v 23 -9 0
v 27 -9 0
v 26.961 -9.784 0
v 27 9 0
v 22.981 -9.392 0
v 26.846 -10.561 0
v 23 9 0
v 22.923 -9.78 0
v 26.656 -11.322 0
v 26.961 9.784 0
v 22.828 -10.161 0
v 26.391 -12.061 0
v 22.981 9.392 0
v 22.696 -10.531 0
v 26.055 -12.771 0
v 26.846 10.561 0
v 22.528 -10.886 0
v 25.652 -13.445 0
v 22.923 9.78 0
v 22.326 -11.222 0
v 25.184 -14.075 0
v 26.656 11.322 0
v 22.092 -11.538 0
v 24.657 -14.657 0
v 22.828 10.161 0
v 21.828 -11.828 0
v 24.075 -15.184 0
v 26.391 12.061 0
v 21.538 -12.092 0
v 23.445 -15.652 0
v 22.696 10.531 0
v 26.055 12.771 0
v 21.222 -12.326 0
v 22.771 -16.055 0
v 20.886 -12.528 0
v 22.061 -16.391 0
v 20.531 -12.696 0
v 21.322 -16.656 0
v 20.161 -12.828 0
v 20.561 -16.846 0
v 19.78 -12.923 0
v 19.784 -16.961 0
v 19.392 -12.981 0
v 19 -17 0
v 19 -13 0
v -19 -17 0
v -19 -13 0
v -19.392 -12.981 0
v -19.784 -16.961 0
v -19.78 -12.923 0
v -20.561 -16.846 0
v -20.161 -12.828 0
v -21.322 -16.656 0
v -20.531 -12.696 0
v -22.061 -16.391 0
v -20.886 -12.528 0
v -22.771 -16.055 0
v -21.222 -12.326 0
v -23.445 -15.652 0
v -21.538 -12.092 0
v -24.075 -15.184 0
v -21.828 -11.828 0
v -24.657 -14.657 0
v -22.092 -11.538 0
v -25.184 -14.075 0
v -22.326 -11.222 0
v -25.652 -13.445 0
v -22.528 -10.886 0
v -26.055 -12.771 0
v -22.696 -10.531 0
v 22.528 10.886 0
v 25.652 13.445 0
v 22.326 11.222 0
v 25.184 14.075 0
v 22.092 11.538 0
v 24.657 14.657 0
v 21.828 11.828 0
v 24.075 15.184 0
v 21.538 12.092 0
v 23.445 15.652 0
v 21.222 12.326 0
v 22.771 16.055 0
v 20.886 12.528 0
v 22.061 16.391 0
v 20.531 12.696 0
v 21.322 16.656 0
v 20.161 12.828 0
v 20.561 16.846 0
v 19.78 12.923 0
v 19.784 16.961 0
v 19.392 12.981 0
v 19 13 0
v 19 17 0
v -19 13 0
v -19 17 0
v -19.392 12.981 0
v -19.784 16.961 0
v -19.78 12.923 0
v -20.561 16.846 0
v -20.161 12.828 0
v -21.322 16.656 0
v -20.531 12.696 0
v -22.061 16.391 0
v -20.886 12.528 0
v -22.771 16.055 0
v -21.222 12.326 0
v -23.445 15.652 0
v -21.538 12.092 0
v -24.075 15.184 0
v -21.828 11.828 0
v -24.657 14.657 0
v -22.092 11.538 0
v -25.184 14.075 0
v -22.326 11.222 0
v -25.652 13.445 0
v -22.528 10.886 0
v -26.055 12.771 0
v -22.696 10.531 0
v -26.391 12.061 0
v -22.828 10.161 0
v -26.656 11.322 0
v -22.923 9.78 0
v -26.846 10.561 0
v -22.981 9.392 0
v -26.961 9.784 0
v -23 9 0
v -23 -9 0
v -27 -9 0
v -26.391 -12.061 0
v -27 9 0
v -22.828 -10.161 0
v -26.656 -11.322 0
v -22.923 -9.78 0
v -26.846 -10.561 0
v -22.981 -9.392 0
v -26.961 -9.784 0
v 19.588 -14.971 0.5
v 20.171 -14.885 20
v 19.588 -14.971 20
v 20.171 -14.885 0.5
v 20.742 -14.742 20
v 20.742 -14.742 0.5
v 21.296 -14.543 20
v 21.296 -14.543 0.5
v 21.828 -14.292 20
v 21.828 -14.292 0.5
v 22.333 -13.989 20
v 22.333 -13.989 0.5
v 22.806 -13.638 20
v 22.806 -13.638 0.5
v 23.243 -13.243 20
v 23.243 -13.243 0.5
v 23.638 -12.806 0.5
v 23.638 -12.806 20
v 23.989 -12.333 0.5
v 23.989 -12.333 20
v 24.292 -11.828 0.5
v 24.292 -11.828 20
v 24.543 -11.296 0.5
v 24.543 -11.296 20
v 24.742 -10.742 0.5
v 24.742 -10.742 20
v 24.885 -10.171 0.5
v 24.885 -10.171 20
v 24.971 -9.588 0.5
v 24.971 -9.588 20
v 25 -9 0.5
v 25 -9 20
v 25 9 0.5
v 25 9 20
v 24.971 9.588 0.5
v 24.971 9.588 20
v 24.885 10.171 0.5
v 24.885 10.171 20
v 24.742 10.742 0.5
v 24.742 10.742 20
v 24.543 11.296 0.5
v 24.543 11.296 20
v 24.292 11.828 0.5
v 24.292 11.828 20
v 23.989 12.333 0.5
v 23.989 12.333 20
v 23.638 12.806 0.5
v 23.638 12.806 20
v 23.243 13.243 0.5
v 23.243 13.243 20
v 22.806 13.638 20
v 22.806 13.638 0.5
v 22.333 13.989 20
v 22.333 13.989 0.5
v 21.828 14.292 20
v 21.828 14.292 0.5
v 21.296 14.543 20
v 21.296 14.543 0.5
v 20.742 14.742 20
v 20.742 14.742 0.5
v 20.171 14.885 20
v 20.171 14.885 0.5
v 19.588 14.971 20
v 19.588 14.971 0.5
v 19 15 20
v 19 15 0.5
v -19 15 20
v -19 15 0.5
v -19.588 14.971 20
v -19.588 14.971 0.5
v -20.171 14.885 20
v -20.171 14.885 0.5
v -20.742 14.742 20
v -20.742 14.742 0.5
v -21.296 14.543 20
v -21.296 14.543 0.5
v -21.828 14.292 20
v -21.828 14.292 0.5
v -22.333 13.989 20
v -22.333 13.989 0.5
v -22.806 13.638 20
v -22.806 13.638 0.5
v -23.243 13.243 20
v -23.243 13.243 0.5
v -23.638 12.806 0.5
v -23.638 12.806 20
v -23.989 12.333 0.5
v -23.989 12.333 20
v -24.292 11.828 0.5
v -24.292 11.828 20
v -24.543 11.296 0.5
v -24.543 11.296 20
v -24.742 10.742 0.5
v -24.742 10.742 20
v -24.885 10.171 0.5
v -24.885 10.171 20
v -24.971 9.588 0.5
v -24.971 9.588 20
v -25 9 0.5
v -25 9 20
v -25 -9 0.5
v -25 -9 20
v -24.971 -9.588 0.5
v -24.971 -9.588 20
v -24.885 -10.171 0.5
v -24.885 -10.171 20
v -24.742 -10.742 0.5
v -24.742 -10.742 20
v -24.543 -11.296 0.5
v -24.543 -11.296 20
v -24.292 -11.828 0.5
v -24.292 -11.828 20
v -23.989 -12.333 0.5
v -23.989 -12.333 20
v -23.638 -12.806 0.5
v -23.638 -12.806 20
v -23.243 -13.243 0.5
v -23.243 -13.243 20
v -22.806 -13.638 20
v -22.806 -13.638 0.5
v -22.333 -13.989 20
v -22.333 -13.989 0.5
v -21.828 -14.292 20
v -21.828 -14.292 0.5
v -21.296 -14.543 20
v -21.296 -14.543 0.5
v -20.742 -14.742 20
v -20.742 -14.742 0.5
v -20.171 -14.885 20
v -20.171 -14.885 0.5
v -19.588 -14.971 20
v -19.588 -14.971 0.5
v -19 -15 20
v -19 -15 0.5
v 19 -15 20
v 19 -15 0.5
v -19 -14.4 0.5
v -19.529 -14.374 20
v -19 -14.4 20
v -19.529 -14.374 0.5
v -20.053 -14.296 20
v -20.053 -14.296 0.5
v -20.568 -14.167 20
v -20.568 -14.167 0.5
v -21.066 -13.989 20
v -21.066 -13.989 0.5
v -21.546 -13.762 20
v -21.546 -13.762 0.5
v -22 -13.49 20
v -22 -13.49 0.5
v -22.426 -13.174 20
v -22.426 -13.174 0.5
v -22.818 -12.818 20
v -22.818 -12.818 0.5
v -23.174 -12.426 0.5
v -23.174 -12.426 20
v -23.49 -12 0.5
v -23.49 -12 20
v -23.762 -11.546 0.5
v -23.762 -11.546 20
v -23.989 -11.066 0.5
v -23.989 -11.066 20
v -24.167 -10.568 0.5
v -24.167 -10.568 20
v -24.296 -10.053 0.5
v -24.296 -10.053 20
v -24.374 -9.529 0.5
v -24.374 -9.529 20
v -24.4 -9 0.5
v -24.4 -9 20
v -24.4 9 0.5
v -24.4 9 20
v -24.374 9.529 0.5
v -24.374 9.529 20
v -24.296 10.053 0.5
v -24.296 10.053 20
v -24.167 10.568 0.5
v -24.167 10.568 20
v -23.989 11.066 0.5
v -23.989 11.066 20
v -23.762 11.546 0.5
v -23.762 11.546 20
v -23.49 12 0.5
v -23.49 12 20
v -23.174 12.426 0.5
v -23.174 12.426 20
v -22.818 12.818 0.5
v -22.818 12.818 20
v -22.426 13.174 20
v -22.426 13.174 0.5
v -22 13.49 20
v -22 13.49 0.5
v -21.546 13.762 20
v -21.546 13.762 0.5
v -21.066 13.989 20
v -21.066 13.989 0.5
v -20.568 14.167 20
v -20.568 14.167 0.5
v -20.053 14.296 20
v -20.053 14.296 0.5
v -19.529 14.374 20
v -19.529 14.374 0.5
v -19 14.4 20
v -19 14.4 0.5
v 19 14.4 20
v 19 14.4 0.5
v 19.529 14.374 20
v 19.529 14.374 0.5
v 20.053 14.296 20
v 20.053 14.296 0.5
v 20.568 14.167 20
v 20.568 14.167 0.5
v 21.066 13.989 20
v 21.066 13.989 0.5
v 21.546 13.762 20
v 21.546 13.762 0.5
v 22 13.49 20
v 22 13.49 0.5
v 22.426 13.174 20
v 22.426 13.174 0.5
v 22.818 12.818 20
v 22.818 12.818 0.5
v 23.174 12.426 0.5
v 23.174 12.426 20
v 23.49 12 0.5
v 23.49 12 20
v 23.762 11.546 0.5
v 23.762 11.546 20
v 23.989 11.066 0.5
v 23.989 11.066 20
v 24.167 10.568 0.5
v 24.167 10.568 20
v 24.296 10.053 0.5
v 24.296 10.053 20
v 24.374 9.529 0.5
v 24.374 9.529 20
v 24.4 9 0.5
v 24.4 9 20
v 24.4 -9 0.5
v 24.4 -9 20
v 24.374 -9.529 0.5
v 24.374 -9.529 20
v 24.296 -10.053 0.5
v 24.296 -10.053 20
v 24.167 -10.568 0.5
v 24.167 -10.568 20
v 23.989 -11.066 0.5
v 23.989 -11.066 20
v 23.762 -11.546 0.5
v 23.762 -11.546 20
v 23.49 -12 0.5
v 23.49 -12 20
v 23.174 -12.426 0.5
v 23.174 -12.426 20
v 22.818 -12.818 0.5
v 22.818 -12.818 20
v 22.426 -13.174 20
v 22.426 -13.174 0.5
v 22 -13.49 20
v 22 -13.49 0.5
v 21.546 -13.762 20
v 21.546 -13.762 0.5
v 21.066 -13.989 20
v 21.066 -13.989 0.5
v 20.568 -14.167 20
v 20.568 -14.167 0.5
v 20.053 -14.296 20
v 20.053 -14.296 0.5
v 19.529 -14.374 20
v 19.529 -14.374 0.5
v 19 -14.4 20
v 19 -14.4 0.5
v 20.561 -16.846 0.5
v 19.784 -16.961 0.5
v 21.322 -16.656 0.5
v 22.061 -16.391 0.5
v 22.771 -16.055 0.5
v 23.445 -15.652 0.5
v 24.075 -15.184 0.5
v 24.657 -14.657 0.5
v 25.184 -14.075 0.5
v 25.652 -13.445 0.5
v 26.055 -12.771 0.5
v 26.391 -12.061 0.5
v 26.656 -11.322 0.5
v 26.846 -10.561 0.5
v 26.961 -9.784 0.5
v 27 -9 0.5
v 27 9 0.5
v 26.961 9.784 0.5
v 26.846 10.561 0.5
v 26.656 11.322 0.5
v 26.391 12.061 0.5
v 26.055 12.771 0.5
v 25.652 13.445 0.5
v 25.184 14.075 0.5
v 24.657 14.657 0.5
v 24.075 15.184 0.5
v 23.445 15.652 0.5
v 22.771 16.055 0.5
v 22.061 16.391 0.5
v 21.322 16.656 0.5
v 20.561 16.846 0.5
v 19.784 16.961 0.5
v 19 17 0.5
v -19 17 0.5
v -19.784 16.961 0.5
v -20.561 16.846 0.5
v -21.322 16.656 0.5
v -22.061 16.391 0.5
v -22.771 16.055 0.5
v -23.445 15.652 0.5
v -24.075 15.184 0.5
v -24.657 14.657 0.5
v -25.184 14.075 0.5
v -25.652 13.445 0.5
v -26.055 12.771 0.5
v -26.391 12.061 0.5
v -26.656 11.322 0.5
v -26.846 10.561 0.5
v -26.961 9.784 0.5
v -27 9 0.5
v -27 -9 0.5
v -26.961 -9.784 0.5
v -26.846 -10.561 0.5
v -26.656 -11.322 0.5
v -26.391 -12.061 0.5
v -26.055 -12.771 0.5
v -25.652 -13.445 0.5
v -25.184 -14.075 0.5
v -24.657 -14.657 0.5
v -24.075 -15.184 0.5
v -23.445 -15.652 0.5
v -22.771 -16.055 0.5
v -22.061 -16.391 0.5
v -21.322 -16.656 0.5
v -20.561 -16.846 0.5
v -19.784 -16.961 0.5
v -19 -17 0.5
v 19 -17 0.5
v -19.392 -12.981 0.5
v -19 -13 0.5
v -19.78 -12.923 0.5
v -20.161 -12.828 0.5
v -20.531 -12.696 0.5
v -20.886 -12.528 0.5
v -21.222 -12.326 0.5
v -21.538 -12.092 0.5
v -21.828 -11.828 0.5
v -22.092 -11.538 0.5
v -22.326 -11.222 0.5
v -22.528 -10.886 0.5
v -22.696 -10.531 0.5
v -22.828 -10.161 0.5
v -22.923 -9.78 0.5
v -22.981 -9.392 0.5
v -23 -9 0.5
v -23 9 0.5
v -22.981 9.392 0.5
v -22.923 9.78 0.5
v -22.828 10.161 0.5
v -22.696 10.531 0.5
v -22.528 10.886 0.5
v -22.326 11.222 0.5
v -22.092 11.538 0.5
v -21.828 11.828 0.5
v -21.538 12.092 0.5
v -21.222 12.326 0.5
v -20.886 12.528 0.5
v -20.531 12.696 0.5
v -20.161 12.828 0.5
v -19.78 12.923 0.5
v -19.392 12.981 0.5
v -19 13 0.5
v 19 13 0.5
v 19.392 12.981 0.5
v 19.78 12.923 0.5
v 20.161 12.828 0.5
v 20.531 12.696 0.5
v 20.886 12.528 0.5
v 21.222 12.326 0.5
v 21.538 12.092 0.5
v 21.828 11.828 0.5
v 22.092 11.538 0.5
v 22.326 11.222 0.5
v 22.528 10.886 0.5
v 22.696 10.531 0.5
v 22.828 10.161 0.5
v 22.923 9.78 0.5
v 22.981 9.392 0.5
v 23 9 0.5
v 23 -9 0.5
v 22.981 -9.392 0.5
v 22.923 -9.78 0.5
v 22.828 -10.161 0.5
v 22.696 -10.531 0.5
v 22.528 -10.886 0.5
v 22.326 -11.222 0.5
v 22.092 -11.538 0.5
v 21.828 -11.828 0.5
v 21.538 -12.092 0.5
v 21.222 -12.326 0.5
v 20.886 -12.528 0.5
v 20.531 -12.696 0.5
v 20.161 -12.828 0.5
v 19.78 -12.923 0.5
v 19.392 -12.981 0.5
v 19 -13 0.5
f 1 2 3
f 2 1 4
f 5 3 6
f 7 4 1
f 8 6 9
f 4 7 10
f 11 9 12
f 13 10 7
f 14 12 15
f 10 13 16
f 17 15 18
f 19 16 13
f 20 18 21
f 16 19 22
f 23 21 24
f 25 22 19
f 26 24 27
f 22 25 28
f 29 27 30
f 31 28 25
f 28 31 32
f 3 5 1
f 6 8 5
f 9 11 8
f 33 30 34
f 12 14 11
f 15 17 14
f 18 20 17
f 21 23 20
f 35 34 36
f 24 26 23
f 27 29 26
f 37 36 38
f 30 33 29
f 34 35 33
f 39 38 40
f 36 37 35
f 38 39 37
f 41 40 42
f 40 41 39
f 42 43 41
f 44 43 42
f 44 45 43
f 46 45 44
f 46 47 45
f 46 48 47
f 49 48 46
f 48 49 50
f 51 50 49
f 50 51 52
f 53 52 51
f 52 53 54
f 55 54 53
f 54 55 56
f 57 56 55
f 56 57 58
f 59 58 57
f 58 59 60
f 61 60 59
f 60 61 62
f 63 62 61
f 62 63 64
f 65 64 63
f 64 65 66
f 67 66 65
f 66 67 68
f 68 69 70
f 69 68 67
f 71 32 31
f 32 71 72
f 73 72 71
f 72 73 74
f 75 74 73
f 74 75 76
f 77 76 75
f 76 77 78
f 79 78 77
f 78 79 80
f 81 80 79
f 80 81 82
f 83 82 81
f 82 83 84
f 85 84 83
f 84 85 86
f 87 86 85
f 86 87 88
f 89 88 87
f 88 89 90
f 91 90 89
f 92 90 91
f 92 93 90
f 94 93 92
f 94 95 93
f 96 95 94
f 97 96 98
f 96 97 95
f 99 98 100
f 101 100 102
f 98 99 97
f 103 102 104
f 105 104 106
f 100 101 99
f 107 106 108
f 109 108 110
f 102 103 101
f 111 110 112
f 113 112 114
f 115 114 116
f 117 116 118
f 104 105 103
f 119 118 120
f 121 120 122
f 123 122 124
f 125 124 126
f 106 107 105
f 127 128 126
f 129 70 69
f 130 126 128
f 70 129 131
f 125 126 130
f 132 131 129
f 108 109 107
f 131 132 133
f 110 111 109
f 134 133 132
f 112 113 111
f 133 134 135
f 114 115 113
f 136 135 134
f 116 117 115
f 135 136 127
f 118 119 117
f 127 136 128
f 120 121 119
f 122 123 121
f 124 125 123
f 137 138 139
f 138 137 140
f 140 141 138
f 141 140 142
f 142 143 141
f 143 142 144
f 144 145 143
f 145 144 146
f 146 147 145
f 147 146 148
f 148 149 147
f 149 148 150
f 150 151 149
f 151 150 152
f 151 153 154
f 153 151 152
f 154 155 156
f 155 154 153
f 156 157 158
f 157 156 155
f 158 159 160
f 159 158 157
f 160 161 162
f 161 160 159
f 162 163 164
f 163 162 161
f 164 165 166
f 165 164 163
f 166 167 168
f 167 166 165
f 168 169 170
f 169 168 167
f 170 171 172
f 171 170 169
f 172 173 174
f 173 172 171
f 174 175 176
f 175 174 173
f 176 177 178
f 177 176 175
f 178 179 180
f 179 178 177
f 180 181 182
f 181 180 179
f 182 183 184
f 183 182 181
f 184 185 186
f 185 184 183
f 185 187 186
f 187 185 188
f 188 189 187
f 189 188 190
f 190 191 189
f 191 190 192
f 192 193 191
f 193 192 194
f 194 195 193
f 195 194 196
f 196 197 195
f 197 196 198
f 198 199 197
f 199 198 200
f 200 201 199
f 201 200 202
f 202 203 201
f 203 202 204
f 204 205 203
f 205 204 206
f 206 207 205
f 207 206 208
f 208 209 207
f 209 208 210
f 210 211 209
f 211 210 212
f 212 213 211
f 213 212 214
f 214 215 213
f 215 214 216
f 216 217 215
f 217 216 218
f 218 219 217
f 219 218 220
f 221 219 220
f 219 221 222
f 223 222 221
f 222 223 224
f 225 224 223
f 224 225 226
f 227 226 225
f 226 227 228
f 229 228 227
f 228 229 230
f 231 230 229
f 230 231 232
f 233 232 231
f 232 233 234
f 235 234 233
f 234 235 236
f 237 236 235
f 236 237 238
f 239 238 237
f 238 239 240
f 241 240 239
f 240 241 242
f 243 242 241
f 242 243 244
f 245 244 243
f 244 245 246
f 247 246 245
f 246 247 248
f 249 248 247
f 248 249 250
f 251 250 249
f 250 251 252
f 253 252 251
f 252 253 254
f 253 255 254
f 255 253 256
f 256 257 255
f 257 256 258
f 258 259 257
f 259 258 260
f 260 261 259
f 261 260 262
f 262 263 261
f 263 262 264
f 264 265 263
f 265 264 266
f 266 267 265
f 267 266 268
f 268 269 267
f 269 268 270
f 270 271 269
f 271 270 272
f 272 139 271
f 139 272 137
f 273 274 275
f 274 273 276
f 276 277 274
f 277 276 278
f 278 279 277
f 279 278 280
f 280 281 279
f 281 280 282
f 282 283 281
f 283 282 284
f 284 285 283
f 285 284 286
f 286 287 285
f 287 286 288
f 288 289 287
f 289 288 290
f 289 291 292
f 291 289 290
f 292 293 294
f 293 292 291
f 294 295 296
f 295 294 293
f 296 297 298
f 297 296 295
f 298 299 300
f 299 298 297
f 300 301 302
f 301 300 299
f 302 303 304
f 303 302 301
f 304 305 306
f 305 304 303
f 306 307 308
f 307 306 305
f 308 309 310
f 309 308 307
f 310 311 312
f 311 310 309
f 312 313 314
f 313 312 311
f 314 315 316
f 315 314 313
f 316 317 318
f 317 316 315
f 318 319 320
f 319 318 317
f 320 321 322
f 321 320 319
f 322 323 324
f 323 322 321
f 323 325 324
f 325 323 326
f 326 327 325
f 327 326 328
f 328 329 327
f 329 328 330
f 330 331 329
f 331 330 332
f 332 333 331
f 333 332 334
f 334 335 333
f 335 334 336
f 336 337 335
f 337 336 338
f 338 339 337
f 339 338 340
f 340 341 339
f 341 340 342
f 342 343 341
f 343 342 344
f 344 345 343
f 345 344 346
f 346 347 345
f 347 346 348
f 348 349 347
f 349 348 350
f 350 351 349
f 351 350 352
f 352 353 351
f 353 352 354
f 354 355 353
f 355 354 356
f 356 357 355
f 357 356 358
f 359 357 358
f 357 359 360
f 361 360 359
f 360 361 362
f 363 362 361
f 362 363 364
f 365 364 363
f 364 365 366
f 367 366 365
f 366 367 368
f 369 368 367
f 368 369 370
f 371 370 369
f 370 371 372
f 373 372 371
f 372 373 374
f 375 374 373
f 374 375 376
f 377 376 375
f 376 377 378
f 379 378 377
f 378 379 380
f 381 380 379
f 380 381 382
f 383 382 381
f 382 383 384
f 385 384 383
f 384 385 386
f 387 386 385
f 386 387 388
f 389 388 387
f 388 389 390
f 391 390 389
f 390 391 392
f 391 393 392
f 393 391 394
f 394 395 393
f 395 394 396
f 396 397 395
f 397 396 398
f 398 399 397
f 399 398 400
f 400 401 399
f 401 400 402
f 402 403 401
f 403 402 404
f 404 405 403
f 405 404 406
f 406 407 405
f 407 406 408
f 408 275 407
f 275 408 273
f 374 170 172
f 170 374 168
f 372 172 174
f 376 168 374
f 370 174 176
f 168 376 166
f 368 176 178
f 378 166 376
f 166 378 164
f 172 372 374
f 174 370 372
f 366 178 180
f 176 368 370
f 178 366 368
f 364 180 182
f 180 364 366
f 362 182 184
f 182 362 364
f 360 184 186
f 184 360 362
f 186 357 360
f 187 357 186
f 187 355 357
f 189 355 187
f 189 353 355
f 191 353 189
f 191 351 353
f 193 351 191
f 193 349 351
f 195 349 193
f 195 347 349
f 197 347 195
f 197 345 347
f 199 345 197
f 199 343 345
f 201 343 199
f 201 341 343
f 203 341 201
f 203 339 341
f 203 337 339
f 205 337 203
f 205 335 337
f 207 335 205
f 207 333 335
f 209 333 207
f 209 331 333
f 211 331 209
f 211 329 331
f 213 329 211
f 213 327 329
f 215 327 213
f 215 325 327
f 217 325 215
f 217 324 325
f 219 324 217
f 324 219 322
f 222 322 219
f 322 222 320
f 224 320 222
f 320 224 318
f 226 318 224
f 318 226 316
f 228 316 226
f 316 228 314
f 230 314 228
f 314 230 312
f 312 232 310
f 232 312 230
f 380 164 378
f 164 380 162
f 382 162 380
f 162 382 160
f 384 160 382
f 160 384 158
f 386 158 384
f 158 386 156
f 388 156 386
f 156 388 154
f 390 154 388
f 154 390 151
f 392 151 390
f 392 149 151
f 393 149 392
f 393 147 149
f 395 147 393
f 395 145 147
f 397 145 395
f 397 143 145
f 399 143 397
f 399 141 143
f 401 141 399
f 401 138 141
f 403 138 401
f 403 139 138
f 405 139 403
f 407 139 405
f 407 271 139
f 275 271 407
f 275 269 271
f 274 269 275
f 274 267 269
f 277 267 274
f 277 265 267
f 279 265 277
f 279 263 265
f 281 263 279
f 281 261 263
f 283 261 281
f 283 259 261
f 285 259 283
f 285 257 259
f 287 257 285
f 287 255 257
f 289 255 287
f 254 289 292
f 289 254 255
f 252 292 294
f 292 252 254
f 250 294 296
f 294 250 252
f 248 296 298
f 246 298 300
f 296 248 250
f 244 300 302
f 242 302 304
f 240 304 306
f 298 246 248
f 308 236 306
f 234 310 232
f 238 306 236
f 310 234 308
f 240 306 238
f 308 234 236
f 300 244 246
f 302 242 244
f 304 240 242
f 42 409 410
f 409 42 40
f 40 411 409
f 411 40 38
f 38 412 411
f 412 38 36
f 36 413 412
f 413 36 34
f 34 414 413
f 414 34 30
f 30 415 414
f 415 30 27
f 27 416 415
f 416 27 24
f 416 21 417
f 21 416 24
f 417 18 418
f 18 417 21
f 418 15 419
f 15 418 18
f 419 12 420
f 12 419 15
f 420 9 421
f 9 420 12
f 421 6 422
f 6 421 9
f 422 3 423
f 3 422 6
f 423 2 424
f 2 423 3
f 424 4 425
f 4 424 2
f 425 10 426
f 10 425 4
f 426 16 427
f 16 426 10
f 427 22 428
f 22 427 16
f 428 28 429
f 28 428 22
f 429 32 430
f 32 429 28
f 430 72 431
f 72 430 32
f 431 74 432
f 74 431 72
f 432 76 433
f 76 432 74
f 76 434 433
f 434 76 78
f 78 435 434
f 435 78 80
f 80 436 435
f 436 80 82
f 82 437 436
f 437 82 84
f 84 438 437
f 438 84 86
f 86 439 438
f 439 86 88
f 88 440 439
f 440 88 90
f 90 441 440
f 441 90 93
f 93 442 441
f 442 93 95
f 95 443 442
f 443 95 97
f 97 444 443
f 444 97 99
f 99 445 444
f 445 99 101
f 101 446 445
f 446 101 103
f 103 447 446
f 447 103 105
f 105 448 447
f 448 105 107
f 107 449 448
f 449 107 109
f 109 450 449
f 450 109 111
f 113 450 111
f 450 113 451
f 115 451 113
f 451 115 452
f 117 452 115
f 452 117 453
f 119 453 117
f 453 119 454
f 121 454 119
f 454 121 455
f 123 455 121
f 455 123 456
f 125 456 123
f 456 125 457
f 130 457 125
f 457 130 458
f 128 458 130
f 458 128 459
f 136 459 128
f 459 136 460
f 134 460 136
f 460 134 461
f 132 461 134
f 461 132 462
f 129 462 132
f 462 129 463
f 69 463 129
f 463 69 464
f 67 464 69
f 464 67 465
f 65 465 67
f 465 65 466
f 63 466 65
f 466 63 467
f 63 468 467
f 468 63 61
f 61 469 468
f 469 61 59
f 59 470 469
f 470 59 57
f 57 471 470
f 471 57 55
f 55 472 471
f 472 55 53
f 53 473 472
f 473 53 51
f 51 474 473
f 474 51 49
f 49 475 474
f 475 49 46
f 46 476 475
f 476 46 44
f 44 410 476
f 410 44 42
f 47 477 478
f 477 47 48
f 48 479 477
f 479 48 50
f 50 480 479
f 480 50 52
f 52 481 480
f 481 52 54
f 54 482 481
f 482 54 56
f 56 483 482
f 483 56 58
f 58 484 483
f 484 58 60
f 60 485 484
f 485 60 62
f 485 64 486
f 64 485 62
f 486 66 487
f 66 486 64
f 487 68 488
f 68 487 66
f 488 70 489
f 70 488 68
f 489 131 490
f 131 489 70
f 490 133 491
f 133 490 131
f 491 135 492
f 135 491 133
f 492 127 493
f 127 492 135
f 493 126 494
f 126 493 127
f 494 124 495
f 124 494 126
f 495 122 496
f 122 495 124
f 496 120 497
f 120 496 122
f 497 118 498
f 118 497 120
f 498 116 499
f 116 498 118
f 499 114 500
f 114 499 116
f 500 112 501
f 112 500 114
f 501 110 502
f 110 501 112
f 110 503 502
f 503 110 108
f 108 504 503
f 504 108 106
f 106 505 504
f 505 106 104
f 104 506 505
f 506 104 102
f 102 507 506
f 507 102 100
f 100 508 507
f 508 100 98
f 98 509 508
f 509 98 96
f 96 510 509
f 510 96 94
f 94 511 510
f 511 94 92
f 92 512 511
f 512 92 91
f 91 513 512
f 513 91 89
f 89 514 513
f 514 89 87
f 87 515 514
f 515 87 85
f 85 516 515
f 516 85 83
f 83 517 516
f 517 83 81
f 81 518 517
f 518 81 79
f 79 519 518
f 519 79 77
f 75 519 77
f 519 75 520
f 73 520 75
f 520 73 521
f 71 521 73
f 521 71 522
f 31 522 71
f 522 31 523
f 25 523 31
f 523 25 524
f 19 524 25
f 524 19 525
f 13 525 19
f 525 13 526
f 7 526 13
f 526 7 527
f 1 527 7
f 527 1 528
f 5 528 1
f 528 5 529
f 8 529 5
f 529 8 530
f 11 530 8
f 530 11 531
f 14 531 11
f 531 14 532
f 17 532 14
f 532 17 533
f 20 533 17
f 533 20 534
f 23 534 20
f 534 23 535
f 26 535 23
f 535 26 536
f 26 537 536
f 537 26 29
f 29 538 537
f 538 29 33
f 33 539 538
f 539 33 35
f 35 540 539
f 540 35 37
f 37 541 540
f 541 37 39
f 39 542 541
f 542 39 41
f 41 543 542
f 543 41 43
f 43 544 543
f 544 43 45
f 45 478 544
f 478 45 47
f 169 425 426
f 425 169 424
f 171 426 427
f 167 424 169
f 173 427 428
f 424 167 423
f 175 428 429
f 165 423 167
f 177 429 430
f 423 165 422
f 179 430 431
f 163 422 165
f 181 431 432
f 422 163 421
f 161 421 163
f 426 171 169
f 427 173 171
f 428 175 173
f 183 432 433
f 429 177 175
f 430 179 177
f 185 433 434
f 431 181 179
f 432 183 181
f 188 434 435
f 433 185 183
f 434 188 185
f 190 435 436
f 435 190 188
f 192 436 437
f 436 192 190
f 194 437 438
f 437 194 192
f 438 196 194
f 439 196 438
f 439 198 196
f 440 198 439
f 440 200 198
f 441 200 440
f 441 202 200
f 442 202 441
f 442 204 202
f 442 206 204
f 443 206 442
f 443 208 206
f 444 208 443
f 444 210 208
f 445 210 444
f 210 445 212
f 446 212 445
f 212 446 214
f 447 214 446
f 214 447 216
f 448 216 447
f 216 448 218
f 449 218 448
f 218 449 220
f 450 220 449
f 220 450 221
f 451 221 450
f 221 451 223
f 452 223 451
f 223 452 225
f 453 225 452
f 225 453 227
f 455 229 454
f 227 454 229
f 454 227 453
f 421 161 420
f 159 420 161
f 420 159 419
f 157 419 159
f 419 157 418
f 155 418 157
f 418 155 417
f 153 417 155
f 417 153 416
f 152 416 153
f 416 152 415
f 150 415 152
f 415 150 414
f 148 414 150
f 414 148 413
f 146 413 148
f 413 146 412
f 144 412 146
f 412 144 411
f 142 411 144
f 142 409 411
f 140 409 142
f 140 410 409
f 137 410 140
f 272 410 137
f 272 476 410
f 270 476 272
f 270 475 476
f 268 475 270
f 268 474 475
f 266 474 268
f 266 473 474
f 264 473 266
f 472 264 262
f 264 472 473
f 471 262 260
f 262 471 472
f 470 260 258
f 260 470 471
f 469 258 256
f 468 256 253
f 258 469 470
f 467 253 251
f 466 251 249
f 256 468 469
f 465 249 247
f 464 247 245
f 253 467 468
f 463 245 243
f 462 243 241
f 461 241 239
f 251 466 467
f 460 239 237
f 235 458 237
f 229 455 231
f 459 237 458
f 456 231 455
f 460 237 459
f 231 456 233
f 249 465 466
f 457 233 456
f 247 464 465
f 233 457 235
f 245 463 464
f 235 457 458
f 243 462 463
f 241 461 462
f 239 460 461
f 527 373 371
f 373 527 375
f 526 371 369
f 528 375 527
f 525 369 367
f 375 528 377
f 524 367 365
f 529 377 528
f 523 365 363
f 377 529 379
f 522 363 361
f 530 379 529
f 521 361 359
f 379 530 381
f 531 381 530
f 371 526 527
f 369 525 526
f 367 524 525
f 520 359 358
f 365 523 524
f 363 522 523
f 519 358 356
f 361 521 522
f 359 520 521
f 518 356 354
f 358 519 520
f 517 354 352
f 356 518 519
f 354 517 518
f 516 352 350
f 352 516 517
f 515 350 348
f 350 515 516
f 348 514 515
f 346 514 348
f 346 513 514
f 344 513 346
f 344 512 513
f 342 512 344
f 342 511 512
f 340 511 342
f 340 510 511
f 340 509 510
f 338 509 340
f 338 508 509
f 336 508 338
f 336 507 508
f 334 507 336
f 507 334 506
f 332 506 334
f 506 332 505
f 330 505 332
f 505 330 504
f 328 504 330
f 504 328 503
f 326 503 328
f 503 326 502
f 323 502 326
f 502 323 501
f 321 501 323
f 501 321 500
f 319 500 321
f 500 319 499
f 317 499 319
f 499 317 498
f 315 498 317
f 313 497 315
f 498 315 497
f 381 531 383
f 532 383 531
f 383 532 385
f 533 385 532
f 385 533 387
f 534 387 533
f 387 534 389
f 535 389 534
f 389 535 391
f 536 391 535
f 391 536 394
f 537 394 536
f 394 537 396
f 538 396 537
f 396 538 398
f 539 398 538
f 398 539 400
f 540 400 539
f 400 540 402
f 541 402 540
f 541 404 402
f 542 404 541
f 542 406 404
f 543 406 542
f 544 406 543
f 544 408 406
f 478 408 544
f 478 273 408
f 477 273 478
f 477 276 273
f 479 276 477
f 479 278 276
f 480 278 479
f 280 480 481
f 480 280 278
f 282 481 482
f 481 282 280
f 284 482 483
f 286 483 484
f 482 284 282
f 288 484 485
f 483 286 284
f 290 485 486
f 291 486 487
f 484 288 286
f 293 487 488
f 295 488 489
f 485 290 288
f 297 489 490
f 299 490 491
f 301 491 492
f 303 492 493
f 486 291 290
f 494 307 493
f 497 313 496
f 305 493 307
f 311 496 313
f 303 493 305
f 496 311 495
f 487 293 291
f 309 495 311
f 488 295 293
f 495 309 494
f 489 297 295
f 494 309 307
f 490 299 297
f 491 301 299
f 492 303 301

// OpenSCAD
distance = 40;
radius  = 6;
thickness = 0.6;
$fn = 64; // needs to be super smooth
//$fs = 1;
module sqround(r,x,y) {
    hull() {
        translate([+x/2,+y/2])circle(r);
        translate([+x/2,-y/2])circle(r);
        translate([-x/2,+y/2])circle(r);
        translate([-x/2,-y/2])circle(r);
    }

}

module shell(r,t,h) {
    x = 50 - radius*2;
    y = 30 - radius*2;
    linear_extrude(h)difference() {
        sqround(r,x,y);
        sqround(r - t,x,y);
    }
}
shell(radius,thickness,20);
shell(radius + 2, 4, 0.5);
